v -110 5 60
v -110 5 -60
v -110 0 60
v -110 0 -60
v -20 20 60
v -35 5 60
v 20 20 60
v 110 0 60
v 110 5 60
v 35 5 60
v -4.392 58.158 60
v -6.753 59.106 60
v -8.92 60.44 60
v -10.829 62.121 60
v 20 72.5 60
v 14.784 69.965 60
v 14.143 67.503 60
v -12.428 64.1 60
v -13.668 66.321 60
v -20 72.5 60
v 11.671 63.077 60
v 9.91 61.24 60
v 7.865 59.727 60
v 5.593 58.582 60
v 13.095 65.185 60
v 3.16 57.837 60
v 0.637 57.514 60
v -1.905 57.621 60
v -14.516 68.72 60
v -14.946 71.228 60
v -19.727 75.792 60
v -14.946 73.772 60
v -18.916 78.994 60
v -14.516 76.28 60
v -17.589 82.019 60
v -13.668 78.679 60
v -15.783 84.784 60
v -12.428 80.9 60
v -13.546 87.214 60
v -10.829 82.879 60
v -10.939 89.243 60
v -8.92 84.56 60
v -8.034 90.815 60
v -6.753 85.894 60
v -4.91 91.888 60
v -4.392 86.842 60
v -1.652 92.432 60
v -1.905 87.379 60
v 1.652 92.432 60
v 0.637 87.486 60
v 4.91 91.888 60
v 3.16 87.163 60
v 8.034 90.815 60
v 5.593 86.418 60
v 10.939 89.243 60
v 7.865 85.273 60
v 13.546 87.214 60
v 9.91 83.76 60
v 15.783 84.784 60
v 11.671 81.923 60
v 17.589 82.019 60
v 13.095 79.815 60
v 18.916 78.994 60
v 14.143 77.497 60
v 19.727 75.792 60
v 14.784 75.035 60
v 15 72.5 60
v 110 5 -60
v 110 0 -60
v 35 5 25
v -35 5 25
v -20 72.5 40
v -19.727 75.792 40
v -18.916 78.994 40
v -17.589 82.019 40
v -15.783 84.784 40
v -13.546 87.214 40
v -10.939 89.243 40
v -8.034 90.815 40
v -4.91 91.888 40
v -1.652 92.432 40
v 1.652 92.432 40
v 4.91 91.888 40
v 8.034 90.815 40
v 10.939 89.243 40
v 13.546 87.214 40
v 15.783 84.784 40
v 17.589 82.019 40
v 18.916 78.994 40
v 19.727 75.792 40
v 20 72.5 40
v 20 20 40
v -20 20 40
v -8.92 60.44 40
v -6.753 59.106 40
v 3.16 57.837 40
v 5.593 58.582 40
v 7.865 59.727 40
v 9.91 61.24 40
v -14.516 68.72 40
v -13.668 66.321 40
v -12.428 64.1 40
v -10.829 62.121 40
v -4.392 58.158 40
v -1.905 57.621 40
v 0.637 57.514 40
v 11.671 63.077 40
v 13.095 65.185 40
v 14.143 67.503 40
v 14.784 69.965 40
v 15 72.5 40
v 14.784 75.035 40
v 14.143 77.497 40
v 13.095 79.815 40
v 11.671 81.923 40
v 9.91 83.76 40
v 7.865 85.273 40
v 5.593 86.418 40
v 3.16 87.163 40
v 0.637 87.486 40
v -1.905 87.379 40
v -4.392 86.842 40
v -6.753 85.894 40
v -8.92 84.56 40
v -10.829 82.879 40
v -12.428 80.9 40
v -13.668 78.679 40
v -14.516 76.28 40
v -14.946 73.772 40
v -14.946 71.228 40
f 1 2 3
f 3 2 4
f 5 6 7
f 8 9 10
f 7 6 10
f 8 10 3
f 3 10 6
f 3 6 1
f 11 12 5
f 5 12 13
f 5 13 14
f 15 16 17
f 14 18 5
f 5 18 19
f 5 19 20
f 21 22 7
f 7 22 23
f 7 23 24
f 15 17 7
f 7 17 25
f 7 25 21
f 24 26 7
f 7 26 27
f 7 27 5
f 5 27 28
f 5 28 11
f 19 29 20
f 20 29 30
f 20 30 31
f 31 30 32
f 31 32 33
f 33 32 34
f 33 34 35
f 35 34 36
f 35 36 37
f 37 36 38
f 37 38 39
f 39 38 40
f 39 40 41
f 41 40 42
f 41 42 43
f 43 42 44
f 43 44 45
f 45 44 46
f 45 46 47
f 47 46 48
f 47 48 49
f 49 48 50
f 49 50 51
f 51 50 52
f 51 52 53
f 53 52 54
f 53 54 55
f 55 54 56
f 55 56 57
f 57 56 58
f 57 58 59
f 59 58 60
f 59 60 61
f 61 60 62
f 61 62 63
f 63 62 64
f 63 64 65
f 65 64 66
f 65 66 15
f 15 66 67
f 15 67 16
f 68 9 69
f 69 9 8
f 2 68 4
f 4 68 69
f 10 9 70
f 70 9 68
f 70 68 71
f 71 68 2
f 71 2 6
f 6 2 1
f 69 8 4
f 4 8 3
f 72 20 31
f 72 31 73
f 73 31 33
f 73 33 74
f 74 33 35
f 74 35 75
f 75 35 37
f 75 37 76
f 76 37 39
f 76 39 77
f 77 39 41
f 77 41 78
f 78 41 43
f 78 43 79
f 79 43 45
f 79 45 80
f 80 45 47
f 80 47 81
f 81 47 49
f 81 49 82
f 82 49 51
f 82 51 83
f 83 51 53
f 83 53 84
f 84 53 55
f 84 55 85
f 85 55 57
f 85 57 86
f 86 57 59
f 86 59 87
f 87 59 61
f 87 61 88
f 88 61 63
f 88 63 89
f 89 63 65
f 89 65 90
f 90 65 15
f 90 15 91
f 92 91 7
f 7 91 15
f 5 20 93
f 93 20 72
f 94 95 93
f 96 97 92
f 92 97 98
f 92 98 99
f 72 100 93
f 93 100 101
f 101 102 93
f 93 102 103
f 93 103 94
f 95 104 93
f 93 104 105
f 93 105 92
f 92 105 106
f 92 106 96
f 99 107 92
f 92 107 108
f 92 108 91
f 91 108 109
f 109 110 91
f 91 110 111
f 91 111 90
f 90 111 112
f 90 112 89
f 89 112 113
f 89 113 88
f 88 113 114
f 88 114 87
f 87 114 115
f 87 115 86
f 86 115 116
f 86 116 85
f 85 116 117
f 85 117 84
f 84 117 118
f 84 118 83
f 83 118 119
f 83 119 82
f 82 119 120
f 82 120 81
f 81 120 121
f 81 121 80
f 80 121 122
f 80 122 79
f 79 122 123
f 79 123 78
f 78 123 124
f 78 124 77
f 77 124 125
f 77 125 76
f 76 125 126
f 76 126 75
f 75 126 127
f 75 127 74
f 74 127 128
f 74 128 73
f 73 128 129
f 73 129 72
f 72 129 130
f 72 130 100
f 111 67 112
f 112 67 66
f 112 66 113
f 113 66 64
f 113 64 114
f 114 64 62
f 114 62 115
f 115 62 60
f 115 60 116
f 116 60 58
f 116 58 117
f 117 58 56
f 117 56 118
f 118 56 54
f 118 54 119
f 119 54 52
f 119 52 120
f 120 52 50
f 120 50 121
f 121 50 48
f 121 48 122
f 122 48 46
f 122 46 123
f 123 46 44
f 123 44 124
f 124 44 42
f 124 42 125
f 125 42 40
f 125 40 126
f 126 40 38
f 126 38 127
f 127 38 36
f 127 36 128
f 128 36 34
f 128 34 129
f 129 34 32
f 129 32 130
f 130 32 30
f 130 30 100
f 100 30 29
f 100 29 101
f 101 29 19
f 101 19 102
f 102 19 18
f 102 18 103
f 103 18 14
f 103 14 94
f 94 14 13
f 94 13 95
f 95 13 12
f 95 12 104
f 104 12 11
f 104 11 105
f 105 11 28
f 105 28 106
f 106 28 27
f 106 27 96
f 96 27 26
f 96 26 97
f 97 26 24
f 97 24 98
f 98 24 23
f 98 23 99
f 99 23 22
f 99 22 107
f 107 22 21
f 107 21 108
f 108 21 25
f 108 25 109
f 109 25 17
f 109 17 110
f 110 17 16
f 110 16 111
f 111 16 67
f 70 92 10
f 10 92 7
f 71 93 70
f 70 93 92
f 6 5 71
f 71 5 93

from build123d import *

# Parameters (mm, degrees)
ESBO_O1_W                = 220
ESBO_O1_H                = 120
RESSALTO_EXTRUS_O1_DEPTH = 5
ESBO_O2_R                = 15
RESSALTO_EXTRUS_O2_DEPTH = 20
CHANFRO1_SIZE            = 15


with BuildPart() as part:
    # Esboço1 → Ressalto-extrusão1 (new body)
    with BuildSketch(Plane(origin=(0, 0, 0), x_dir=(1, 0, 0), z_dir=(0, 1, 0))):
        Rectangle(ESBO_O1_W, ESBO_O1_H)
    extrude(amount=RESSALTO_EXTRUS_O1_DEPTH)

    # Esboço2 → Ressalto-extrusão2 (add)
    with BuildSketch(Plane.XY.offset(60)):
        with BuildLine():
            Line((20, 72.5), (20, 5))
            Line((20, 5), (-20, 5))
            Line((-20, 5), (-20, 72.5))
            ThreePointArc((-20, 72.5), (0, 92.5), (20, 72.5))
        make_face()
        with Locations((0, 72.5)):
            Circle(ESBO_O2_R, mode=Mode.SUBTRACT)
    extrude(amount=-RESSALTO_EXTRUS_O2_DEPTH)

    # Chanfro1
    chanfro1_edges = [part.edges().sort_by_distance(p)[0] for p in [
        (0, 5, 40),
        (20, 5, 50),
        (-20, 5, 50),
    ]]
    chamfer(chanfro1_edges, length=CHANFRO1_SIZE)


solid = part.part
